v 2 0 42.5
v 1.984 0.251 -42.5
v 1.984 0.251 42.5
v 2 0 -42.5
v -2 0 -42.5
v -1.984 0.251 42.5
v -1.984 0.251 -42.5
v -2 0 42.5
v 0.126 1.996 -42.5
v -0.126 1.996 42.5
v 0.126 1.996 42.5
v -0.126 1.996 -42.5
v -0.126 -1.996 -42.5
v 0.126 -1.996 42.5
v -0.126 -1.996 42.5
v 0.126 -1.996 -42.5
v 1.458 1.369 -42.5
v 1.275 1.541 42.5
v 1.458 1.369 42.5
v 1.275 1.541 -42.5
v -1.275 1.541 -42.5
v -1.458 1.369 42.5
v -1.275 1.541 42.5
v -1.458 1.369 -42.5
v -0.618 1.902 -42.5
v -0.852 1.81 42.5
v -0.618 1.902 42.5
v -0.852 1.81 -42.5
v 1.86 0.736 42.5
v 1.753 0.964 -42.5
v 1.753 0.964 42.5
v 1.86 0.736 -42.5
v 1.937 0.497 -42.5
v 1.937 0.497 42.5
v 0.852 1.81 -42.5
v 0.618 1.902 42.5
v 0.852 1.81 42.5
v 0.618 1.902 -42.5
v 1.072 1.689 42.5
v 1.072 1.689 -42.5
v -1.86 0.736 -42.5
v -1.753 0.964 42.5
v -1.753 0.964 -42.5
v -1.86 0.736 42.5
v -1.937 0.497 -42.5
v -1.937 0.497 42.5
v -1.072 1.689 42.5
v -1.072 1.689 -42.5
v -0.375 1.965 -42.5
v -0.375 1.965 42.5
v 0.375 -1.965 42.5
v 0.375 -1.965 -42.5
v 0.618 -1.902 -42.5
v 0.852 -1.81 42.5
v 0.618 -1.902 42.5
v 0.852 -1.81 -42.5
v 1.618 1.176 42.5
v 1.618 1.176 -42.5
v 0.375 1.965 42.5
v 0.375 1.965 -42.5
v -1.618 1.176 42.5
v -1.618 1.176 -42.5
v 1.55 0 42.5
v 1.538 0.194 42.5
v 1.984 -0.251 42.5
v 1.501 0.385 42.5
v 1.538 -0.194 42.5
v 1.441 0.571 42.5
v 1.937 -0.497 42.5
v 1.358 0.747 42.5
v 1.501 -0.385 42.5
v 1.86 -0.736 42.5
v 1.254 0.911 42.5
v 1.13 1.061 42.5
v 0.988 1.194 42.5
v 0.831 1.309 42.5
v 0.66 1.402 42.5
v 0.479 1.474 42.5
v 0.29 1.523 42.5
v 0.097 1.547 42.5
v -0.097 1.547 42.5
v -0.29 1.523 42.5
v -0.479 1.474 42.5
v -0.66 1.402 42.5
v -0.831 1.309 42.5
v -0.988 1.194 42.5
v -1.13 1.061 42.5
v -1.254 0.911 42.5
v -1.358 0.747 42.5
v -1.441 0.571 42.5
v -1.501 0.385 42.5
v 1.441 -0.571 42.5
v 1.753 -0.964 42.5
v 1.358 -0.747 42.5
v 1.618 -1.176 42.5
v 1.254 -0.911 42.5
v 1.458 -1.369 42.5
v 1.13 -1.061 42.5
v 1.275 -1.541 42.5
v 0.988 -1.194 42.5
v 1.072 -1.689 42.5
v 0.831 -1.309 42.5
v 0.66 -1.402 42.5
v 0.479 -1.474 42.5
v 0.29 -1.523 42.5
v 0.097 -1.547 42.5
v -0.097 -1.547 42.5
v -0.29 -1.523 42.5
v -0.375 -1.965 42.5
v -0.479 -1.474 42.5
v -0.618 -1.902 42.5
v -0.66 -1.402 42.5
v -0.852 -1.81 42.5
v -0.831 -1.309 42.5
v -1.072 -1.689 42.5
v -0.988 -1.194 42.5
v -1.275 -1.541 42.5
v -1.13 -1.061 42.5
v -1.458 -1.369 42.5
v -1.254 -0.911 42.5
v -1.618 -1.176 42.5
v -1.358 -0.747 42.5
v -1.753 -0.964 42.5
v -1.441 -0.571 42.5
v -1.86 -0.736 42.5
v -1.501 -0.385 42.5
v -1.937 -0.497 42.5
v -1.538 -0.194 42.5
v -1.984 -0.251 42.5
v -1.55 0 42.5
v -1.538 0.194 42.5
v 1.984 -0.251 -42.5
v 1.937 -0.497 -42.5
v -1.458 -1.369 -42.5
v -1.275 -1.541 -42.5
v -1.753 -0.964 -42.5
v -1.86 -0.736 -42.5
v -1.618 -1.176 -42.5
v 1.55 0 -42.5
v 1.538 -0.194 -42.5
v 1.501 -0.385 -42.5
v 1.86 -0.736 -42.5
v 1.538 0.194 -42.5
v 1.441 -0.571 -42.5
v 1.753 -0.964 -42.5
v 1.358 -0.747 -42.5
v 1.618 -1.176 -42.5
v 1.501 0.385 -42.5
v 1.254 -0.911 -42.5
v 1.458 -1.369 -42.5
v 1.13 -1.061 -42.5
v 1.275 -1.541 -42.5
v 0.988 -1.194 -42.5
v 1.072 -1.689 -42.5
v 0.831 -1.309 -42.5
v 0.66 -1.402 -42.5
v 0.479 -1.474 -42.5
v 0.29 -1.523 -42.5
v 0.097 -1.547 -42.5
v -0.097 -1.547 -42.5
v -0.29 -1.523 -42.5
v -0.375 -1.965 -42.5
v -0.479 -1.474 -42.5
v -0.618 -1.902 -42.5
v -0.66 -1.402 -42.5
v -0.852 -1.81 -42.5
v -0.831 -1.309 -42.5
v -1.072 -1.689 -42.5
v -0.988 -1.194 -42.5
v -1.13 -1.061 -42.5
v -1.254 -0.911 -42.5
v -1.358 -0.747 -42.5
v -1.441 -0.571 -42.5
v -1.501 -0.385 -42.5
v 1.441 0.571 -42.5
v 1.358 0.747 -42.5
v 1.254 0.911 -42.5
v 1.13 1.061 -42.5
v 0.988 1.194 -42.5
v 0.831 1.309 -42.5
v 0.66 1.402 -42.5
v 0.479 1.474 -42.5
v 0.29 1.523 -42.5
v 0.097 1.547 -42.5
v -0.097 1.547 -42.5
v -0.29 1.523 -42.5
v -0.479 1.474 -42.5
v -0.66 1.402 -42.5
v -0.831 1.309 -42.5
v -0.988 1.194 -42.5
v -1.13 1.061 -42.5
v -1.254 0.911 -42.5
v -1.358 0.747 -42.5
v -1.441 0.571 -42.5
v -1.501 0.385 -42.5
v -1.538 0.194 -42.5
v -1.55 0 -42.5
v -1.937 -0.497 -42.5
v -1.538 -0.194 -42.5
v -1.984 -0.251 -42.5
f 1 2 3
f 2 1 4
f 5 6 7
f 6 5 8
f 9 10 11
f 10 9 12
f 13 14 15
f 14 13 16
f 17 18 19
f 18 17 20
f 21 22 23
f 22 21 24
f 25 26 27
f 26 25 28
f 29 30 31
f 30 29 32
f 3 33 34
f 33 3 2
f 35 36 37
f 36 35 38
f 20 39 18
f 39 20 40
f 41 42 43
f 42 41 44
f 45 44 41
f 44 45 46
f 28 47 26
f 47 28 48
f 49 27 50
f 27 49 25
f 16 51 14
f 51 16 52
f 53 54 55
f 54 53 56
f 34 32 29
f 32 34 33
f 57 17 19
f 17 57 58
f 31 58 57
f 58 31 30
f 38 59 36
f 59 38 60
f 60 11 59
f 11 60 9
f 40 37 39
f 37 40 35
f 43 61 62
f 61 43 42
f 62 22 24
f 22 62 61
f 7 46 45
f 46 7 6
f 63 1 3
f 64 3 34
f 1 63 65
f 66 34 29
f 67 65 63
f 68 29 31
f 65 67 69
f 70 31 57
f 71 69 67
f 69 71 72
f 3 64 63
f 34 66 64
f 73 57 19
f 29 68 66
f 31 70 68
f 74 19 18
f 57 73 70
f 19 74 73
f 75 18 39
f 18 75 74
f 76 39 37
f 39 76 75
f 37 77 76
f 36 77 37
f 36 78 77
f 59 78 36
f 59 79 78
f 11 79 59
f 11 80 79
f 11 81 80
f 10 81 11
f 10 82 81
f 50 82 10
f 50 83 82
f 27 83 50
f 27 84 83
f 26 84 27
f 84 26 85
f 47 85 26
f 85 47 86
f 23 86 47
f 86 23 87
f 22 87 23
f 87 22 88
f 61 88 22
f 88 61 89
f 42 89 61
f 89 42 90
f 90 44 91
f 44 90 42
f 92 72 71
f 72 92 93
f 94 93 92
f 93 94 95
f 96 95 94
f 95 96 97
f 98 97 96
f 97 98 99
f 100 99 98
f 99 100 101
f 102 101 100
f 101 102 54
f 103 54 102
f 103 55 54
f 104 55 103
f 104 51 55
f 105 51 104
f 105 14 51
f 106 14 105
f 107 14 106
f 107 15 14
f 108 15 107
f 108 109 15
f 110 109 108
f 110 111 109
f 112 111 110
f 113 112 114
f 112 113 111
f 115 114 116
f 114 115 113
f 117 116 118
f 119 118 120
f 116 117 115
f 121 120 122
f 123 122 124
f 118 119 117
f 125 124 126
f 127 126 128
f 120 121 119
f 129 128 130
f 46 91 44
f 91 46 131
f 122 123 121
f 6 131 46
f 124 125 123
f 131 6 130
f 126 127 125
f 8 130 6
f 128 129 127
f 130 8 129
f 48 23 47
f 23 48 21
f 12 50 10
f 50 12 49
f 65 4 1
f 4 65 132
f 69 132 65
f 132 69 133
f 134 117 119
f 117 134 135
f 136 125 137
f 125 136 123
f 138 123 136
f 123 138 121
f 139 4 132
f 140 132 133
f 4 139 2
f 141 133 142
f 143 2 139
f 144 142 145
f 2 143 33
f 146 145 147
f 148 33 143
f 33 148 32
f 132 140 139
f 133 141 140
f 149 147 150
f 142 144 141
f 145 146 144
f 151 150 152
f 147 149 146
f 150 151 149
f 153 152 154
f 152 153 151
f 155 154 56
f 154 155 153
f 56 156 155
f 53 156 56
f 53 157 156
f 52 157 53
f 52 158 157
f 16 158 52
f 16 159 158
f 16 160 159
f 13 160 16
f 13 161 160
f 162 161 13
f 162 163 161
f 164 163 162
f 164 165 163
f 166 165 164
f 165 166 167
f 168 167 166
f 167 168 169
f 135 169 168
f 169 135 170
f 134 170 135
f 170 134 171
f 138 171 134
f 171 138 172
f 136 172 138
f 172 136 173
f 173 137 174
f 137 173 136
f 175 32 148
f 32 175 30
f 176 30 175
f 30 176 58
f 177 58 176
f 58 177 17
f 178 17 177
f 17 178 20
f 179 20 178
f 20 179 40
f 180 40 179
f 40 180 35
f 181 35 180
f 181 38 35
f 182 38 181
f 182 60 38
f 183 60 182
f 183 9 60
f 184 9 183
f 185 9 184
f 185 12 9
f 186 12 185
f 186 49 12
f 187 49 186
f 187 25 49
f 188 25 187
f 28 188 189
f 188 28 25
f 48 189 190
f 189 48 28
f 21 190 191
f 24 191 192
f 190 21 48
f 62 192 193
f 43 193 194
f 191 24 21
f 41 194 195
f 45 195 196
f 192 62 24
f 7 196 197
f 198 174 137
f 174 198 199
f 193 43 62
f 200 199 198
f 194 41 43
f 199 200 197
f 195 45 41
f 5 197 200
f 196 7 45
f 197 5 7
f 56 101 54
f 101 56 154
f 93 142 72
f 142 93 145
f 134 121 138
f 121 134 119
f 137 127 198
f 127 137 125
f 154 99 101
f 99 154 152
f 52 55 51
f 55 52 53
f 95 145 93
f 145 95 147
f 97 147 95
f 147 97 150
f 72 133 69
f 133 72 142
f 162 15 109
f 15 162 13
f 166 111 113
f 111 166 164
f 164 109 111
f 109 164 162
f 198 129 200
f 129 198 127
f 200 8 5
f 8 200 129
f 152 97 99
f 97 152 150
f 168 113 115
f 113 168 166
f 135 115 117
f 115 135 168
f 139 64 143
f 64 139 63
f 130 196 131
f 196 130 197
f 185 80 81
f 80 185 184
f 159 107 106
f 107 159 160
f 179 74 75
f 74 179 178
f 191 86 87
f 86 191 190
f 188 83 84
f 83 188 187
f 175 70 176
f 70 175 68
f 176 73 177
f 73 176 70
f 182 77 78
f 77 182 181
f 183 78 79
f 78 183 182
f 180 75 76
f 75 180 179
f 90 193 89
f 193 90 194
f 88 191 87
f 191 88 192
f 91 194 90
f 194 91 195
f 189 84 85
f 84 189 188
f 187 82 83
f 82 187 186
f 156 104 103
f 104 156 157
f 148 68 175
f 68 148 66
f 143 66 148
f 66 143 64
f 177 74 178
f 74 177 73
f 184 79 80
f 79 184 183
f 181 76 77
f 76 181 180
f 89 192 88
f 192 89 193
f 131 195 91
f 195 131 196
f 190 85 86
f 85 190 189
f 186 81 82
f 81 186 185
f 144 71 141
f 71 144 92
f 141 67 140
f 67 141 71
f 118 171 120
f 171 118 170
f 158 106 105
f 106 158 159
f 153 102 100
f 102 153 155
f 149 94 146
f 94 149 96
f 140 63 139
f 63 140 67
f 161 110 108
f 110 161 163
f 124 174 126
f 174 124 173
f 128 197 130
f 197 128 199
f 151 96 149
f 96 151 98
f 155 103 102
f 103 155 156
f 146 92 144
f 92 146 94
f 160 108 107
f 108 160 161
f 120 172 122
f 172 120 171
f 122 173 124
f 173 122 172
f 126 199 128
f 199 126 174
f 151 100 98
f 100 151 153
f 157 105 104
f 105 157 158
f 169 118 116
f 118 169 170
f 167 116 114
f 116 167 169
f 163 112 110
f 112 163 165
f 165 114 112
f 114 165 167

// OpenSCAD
$fn = 50;


difference() {
	union() {
		translate(v = [0, 0, -42.5000000000]) {
			cylinder(h = 85, r = 2.0000000000);
		}
	}
	union() {
		translate(v = [0, 0, -100.0000000000]) {
			cylinder(h = 200, r = 1.5500000000);
		}
	}
}
